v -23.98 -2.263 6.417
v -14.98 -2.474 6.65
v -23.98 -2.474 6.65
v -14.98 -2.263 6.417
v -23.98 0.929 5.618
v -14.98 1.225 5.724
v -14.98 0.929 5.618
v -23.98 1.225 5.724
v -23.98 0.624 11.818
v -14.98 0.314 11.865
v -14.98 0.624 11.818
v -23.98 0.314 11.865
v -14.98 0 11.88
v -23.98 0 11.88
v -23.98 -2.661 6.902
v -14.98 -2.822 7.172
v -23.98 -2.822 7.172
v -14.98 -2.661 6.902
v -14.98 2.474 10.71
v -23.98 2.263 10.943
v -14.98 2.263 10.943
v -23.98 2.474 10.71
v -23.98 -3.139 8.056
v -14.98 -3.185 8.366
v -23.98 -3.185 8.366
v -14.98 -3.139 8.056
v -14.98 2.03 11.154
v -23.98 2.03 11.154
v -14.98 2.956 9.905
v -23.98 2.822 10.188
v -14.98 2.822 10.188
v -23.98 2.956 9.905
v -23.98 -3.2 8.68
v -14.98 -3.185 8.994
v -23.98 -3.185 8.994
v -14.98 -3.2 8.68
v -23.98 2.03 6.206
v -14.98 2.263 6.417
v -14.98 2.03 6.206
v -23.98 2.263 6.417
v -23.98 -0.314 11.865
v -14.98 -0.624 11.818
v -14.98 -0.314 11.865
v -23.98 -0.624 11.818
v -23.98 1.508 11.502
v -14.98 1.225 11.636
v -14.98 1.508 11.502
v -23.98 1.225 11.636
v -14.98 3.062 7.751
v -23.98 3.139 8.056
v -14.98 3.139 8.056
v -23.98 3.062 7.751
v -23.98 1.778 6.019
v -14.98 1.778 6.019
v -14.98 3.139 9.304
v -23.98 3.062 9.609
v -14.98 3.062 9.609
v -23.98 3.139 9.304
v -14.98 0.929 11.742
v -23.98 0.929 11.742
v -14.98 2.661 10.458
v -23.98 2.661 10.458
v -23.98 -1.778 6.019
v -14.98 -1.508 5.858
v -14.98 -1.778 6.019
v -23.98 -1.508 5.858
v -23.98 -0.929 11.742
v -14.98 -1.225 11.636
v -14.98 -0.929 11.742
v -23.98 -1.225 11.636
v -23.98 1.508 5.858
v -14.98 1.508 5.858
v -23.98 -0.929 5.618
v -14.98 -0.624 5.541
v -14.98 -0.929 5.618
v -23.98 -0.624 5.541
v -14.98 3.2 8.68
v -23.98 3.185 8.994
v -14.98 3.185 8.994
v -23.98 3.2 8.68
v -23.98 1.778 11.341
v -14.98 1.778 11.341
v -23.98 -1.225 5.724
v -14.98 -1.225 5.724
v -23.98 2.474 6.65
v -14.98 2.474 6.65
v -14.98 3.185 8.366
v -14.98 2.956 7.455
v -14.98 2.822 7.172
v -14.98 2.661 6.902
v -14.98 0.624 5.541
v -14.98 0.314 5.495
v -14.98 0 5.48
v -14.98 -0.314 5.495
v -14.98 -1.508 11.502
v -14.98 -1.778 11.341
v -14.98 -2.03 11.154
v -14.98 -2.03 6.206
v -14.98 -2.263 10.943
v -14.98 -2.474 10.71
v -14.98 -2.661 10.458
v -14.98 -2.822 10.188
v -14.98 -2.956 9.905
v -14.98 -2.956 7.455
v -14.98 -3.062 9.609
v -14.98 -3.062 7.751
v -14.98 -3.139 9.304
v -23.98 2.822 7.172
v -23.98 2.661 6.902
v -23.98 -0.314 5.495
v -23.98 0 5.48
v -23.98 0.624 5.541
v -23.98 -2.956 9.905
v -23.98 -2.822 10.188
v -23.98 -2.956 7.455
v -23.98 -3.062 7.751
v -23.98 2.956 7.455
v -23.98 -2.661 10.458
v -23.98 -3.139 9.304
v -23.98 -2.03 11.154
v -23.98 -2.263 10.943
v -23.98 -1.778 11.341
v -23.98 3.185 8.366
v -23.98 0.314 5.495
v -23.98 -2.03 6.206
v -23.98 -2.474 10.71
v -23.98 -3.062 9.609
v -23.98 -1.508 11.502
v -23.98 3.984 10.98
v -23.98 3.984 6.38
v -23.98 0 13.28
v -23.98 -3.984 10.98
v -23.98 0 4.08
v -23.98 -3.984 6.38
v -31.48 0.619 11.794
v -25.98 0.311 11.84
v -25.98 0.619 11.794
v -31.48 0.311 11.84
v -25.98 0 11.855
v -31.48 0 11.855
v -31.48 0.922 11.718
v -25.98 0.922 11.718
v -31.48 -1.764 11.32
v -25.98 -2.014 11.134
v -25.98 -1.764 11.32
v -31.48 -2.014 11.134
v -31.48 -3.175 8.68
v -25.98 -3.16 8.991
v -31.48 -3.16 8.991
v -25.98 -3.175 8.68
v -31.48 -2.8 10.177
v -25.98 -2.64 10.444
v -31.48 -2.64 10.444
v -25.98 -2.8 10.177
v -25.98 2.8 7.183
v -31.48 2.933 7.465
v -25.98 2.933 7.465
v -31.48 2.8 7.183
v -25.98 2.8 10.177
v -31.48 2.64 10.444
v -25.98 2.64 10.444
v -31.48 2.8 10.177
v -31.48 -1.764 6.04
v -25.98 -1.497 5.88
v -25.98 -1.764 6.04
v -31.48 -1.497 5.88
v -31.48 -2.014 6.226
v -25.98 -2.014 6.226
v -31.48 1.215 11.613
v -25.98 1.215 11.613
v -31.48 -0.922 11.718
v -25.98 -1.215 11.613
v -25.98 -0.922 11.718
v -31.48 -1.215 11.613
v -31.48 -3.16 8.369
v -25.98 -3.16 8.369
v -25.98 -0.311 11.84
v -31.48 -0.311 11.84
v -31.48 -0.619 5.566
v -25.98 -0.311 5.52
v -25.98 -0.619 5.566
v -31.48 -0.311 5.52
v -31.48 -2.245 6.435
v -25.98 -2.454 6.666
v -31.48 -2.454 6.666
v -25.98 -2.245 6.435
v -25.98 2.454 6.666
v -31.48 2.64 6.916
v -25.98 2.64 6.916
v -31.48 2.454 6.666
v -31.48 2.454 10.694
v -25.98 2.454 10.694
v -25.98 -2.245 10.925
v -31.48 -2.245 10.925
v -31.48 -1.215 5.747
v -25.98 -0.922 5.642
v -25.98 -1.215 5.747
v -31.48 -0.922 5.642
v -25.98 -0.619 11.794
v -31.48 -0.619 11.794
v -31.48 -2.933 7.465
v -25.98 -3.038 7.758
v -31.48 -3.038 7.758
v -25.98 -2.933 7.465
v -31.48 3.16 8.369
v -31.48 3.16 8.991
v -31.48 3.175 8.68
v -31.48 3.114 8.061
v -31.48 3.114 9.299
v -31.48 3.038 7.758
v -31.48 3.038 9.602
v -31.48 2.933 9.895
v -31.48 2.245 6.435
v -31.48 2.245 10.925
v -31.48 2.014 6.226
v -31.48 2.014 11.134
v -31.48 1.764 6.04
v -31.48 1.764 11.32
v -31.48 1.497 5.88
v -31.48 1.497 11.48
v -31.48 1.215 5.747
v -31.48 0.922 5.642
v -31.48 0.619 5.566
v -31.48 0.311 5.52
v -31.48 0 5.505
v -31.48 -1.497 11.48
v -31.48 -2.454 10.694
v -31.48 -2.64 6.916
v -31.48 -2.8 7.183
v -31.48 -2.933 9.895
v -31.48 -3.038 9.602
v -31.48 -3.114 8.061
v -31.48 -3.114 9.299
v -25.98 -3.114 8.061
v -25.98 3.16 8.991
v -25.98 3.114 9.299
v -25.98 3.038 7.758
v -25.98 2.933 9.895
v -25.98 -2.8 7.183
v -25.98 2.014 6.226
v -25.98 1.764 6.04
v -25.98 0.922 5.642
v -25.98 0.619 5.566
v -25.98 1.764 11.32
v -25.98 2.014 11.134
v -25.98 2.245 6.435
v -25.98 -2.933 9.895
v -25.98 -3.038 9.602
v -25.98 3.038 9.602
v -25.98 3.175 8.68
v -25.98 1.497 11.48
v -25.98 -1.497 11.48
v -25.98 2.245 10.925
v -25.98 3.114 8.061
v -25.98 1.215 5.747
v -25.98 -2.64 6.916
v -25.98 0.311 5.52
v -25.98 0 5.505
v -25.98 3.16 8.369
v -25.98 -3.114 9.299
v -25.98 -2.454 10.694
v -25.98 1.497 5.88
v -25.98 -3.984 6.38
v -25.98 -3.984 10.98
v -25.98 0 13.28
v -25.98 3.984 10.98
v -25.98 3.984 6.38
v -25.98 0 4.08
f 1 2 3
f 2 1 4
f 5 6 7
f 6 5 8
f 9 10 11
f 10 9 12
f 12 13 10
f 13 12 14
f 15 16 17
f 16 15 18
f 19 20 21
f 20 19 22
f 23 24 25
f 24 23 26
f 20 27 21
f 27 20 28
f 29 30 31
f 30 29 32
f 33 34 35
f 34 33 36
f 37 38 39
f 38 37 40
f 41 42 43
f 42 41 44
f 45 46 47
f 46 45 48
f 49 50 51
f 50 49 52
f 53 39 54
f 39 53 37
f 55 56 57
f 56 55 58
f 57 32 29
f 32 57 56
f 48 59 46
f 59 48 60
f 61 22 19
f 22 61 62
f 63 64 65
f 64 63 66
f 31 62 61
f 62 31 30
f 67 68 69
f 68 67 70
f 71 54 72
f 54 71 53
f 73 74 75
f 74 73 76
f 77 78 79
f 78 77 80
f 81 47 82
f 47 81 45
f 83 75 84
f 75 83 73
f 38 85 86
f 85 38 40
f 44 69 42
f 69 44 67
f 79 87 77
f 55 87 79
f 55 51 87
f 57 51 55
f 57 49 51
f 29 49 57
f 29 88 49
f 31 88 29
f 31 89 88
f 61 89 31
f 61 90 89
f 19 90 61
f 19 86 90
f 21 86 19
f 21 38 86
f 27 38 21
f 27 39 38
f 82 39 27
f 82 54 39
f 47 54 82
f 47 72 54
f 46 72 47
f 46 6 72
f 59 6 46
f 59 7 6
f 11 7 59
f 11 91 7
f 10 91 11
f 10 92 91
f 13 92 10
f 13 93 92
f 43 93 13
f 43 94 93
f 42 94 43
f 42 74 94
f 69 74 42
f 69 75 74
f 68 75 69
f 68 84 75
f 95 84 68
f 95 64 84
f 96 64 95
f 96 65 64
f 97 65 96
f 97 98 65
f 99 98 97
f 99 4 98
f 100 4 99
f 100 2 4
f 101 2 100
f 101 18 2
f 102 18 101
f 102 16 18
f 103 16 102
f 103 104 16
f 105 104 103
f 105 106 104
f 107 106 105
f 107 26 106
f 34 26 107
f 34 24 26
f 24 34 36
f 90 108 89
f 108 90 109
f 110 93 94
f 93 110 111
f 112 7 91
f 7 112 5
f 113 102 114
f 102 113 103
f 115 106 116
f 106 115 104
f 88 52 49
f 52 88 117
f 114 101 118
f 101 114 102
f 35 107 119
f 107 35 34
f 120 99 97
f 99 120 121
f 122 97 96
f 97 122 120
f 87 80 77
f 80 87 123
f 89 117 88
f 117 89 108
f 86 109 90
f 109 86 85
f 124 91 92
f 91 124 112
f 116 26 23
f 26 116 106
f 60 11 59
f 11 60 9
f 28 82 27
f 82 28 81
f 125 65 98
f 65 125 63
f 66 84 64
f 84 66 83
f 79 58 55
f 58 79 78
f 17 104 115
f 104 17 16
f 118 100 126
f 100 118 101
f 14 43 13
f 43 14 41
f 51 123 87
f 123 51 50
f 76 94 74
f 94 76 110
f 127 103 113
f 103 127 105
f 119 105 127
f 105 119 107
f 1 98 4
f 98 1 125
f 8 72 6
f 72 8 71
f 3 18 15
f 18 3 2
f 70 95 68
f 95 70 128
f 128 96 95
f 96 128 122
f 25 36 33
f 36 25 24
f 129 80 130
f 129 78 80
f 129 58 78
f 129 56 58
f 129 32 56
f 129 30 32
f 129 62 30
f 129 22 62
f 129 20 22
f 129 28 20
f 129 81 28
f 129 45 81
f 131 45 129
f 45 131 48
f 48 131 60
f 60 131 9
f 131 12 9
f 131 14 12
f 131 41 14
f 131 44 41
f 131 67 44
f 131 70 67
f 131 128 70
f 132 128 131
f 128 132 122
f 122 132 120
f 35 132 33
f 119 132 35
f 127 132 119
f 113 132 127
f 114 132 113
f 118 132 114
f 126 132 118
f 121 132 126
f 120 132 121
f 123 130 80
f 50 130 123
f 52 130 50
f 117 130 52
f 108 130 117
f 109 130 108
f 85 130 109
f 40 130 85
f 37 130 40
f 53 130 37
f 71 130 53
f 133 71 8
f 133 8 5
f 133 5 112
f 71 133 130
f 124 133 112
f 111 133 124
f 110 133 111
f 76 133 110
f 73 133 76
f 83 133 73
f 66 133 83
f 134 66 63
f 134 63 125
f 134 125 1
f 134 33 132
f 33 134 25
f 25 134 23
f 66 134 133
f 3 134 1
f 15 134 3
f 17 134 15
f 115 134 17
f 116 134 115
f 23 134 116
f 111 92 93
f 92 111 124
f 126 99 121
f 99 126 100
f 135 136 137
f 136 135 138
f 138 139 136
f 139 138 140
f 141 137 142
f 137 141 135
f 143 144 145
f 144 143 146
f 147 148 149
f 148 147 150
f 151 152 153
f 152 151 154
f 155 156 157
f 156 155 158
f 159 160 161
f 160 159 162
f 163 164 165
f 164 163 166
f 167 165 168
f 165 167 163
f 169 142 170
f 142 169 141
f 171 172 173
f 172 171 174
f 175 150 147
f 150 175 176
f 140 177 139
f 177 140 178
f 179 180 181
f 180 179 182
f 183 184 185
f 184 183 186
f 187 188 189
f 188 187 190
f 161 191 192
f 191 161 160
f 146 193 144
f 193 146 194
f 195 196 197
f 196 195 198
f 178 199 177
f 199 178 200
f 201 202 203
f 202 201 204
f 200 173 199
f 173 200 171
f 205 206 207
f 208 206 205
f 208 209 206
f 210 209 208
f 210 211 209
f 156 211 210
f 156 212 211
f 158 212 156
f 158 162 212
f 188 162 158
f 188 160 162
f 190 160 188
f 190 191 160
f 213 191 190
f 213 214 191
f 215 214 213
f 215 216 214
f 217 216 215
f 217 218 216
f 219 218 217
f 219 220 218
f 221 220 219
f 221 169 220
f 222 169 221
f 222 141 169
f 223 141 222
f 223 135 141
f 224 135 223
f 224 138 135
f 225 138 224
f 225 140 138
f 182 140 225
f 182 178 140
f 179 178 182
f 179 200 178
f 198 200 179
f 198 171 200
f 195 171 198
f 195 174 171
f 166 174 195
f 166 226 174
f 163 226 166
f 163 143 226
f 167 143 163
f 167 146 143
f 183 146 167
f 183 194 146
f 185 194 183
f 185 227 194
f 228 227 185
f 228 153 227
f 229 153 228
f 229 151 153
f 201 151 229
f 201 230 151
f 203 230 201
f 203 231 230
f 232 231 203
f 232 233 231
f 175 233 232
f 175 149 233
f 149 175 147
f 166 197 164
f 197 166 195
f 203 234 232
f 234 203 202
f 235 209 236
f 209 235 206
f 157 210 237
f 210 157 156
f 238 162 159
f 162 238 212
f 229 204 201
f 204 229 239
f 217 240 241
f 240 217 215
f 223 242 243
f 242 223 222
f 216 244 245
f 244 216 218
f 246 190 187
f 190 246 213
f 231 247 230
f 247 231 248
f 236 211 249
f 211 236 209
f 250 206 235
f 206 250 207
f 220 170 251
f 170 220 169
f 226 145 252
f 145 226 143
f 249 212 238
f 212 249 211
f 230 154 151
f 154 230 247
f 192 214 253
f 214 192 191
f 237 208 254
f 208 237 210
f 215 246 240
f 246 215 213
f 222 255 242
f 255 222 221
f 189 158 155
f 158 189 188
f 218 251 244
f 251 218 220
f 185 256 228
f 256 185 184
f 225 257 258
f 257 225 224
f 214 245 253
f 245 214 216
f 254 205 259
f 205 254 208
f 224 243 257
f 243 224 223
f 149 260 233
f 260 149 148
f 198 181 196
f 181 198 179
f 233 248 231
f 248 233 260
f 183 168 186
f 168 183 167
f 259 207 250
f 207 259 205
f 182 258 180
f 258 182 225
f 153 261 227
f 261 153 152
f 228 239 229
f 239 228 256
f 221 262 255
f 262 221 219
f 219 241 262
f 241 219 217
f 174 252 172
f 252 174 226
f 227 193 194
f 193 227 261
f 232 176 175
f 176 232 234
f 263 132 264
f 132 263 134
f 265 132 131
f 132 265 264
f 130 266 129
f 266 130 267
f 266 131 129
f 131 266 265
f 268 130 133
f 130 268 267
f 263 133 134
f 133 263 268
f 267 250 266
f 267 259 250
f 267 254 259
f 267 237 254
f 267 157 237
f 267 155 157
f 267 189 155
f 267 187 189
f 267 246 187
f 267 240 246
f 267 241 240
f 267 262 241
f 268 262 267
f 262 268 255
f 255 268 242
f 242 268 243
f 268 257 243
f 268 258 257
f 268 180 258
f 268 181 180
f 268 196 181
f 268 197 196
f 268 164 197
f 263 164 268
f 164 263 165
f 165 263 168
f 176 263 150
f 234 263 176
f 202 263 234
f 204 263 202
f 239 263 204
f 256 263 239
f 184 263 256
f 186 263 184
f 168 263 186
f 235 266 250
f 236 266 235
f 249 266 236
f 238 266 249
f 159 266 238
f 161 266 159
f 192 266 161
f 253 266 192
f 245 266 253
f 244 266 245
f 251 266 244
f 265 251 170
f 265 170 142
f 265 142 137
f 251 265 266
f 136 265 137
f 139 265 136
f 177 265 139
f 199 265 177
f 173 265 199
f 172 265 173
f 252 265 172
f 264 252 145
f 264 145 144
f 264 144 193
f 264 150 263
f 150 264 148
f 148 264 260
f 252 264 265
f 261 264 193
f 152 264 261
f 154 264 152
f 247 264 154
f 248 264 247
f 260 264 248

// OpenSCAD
// file: case.scad
// ESP-ICU case: XIAO ESP32-S3 Sense (camera + expansion board), minimal - acidvegas
// Frame: origin = base board center, +X toward USB-C, Z-up, z=0 = bottom of base PCB (see board_stl.py)
// Sources: Seeed Sense STEP, Sense KiCad v1.51, expansion board DXF (ref/)

part = "both"; // tray | lid | both (print layout)

$fn = 64;

// Base board
bw = 20.955;  // PCB X
bh = 17.78;   // PCB Y
br = 1.905;   // PCB corner radius
bt = 1.25;    // PCB top (1.2 board + 0.05 bottom pads)
usb_x = 12.0; // USB-C receptacle face
usb_h = 4.46;
usb_w = 8.94;

// Stack (from the STEP)
exp_x0  = -10.78;              // expansion board / FPC connector overhang at -X
cam_top = 10.30;               // top of the camera's square holder
lens_top = 13.96;              // front of the lens barrel
cam_x1  = 10.95;               // camera holder +X edge (past the USB-end wall inner face)
cam_y   = [-3.36, 4.64];
lens    = [6.95, 0.64];        // lens axis
lens_d  = 7.85;                // widest barrel
sd_y    = [-4.77, 6.41];       // microSD card, loads from the USB end
sd_z    = [6.85, 8.50];
fpc_top = 7.43;                // 24-pin FPC connector top (clamp surface)

// SMA bulkhead (generic U.FL -> SMA female pigtail: 1/4"-36 thread, 8 mm hex nut, ~8-9 mm body behind the panel)
sma_ext  = 11;   // antenna compartment length behind the panel (body + pigtail coil)
sma_wall = 2.0;  // panel thickness at the SMA
sma_d    = 6.6;  // round panel hole, takes both D-flat and plain threads

// Heatsinks on the back of the base board: two side by side, 9.3 x 20.2 total, 1 mm from the USB end,
// 4.7 / 3.6 mm from the long edges. Floor cutout spans the full length and covers either left/right reading
hs_y = 5.2 + 0.3;

// Case
gap   = 0.2;
wall  = 1.6;  // side walls (tongue 0.8 + lid skin 0.7 + 0.1 fit)
ewall = 1.2;  // USB-end wall (USB face flush)
skin  = 0.8;
fit   = 0.1;
floor = 0.8;
tab   = 0.9;  // BOOT flexure thickness
flush = 0.1;  // lens sits this far below the top face

z_in  = cam_top + 0.1;  // underside of roof
z_s   = bt + 0.05;      // tray wall top / split
z_t   = z_s + 1.5;      // tongue top
sma_z = (z_s + lens_top + flush - 1.0) / 2 + 1.5; // SMA axis, 1.5 above compartment center (toward the camera face)
z_top = lens_top + flush; // flat top, lens recessed
z_tab = z_top - tab;      // underside of the BOOT flexure

cav_x0 = exp_x0 - gap;
cav_x1 = usb_x - ewall;
cav_y  = bh/2 + gap;
cav_xe = cav_x0 - sma_ext; // inner face of the SMA end wall
cx0 = cav_xe - sma_wall;
cy  = cav_y + wall;
cr  = 3.4;

// Features
boot    = [8.89, -5.92]; btn_top = 1.98; // K2 = GPIO0 (BOOT). K1 = RESET sits under the SD card, not reachable
mic     = [-2.75, 7.31];                 // expansion-board PDM mic port (from DXF)

module rrect(x0, x1, y0, y1, r) { translate([x0 + r, y0 + r]) offset(r) square([x1 - x0 - 2*r, y1 - y0 - 2*r]); }
module outer2d()     { rrect(cx0, usb_x, -cy, cy, cr); }
module board2d()     { offset(gap) rrect(-bw/2 - 0.4, bw/2, -bh/2, bh/2, br); } // +0.4 slack at the SMA end
module stack2d()     { rrect(cav_xe, cav_x1, -cav_y, cav_y, 2.1); }
module slab(z0, z1)  { translate([0, 0, z0]) linear_extrude(z1 - z0) children(); }
module box(x0, x1, y0, y1, z0, z1) { translate([x0, y0, z0]) cube([x1 - x0, y1 - y0, z1 - z0]); }
module no_end(d = 0) { translate([cx0 - 1, -cy - 1]) square([cav_x1 - 0.4 + d - cx0 + 1, 2*cy + 2]); } // keeps the tongue off the USB-end wall

// Snap: ridge on the tray tongue's inner face clicks into a groove in the lid lip (both long sides)
snap_x = [-9, 1];
module snap2d(pts, e = 0) { for (m = [0, 1]) mirror([0, m, 0]) translate([snap_x[0] - e, 0, 0]) rotate([90, 0, 90]) linear_extrude(snap_x[1] - snap_x[0] + 2*e) polygon(pts); }
module ridge()  { yi = cy - skin;       snap2d([[yi + 0.01, 1.7], [yi - 0.3, 2.1], [yi + 0.01, 2.5]]); }
module groove() { yo = cy - skin - fit; snap2d([[yo + 0.1, 1.55], [yo - 0.4, 2.1], [yo + 0.1, 2.65]], 0.5); }

module openings() {
	box(cav_x1 - 1, usb_x + 1, -usb_w/2 - 0.25, usb_w/2 + 0.25, 0.1, usb_h + 0.2);            // USB-C
	box(cav_x1 - 1, usb_x + 1, sd_y[0] - 0.25, sd_y[1] + 0.25, sd_z[0] - 0.25, sd_z[1] + 0.2); // microSD
	box(cav_x1 - 1, cam_x1 + 0.2, cam_y[0] - 0.2, cam_y[1] + 0.2, z_s, z_in);                  // camera holder pocket (wall 0.85 here)
}

module tray() {
	difference() {
		union() {
			slab(-floor, z_s) outer2d();
			slab(z_s, z_t) intersection() { difference() { outer2d(); offset(delta = -skin) outer2d(); } no_end(); }
		}
		slab(0, z_s + 1) board2d();
		box(-bw/2 - gap, cav_x1, -hs_y, hs_y, -floor - 1, 0.01); // heatsink cutout
		slab(z_s, z_t + 1) stack2d();
		openings();
	}
	ridge();
}

module lid() {
	difference() {
		union() {
			slab(z_t, z_top) outer2d();
			slab(z_s + fit, z_t) difference() {
				outer2d();
				intersection() { difference() { outer2d(); offset(delta = -(skin + fit)) outer2d(); } no_end(fit); }
			}
		}
		slab(z_s - 1, z_in) stack2d();
		box(cav_xe, cav_x0, -cav_y + 1, cav_y - 1, z_in - 1, z_top - 1.0); // taller antenna compartment
		translate([cx0 - 1, 0, sma_z]) rotate([0, 90, 0]) cylinder(d = sma_d, h = sma_wall + 2);  // SMA panel hole
		openings();
		// lens bore stepped to the barrel profile
		translate([lens.x, lens.y, z_in - 1]) cylinder(d = lens_d + 0.4, h = 12.6 - z_in + 1);
		translate([lens.x, lens.y, z_in - 1]) cylinder(d = 6.8, h = 13.85 - z_in + 1);
		translate([lens.x, lens.y, z_in - 1]) cylinder(d = 4.8, h = z_top - z_in + 2);
		// thin the roof under the BOOT flexure
		slab(z_in - 1, z_tab) translate([boot.x - 6.8, boot.y - 2]) square([8.6, 4]);
		// BOOT flexure: U-slot around a tab hinged toward -X
		slab(z_in - 1, z_top + 1) difference() {
			translate([boot.x - 6.8, boot.y - 2]) square([8.6, 4]);
			translate([boot.x - 7.3, boot.y - 1.5]) square([8.6, 3]);
		}
		translate([mic.x, mic.y, z_in - 1]) cylinder(d = 1.5, h = z_top - z_in + 2);
		groove();
	}
	// BOOT plunger
	translate([boot.x, boot.y, btn_top + 0.25]) cylinder(d = 1.8, h = z_tab - btn_top - 0.25 + 0.01);
	// clamp posts on the FPC connector body, hold the whole stack down
	for (y = [-6, 6]) translate([-8.4, y, fpc_top + 0.05]) cylinder(d = 2, h = z_in - fpc_top - 0.05 + 0.01);
}

if (part == "tray") tray();
if (part == "lid")  lid();
if (part == "both") { tray(); translate([0, 2*cy + 4, z_top]) rotate([180, 0, 0]) lid(); }
// main file
// ESP-ICU: generic U.FL -> SMA female bulkhead, preview only - acidvegas
include <case.scad>
part = "none";
translate([cx0, 0, sma_z]) rotate([0, -90, 0]) {
	translate([0, 0, -9]) cylinder(d = 6.4, h = 9);           // body behind the panel
	translate([0, 0, -sma_wall]) cylinder(d = 6.35, h = 9.5); // 1/4"-36 thread
	cylinder(d = 9.2, h = 2, $fn = 6);                         // 8 mm hex nut
}
